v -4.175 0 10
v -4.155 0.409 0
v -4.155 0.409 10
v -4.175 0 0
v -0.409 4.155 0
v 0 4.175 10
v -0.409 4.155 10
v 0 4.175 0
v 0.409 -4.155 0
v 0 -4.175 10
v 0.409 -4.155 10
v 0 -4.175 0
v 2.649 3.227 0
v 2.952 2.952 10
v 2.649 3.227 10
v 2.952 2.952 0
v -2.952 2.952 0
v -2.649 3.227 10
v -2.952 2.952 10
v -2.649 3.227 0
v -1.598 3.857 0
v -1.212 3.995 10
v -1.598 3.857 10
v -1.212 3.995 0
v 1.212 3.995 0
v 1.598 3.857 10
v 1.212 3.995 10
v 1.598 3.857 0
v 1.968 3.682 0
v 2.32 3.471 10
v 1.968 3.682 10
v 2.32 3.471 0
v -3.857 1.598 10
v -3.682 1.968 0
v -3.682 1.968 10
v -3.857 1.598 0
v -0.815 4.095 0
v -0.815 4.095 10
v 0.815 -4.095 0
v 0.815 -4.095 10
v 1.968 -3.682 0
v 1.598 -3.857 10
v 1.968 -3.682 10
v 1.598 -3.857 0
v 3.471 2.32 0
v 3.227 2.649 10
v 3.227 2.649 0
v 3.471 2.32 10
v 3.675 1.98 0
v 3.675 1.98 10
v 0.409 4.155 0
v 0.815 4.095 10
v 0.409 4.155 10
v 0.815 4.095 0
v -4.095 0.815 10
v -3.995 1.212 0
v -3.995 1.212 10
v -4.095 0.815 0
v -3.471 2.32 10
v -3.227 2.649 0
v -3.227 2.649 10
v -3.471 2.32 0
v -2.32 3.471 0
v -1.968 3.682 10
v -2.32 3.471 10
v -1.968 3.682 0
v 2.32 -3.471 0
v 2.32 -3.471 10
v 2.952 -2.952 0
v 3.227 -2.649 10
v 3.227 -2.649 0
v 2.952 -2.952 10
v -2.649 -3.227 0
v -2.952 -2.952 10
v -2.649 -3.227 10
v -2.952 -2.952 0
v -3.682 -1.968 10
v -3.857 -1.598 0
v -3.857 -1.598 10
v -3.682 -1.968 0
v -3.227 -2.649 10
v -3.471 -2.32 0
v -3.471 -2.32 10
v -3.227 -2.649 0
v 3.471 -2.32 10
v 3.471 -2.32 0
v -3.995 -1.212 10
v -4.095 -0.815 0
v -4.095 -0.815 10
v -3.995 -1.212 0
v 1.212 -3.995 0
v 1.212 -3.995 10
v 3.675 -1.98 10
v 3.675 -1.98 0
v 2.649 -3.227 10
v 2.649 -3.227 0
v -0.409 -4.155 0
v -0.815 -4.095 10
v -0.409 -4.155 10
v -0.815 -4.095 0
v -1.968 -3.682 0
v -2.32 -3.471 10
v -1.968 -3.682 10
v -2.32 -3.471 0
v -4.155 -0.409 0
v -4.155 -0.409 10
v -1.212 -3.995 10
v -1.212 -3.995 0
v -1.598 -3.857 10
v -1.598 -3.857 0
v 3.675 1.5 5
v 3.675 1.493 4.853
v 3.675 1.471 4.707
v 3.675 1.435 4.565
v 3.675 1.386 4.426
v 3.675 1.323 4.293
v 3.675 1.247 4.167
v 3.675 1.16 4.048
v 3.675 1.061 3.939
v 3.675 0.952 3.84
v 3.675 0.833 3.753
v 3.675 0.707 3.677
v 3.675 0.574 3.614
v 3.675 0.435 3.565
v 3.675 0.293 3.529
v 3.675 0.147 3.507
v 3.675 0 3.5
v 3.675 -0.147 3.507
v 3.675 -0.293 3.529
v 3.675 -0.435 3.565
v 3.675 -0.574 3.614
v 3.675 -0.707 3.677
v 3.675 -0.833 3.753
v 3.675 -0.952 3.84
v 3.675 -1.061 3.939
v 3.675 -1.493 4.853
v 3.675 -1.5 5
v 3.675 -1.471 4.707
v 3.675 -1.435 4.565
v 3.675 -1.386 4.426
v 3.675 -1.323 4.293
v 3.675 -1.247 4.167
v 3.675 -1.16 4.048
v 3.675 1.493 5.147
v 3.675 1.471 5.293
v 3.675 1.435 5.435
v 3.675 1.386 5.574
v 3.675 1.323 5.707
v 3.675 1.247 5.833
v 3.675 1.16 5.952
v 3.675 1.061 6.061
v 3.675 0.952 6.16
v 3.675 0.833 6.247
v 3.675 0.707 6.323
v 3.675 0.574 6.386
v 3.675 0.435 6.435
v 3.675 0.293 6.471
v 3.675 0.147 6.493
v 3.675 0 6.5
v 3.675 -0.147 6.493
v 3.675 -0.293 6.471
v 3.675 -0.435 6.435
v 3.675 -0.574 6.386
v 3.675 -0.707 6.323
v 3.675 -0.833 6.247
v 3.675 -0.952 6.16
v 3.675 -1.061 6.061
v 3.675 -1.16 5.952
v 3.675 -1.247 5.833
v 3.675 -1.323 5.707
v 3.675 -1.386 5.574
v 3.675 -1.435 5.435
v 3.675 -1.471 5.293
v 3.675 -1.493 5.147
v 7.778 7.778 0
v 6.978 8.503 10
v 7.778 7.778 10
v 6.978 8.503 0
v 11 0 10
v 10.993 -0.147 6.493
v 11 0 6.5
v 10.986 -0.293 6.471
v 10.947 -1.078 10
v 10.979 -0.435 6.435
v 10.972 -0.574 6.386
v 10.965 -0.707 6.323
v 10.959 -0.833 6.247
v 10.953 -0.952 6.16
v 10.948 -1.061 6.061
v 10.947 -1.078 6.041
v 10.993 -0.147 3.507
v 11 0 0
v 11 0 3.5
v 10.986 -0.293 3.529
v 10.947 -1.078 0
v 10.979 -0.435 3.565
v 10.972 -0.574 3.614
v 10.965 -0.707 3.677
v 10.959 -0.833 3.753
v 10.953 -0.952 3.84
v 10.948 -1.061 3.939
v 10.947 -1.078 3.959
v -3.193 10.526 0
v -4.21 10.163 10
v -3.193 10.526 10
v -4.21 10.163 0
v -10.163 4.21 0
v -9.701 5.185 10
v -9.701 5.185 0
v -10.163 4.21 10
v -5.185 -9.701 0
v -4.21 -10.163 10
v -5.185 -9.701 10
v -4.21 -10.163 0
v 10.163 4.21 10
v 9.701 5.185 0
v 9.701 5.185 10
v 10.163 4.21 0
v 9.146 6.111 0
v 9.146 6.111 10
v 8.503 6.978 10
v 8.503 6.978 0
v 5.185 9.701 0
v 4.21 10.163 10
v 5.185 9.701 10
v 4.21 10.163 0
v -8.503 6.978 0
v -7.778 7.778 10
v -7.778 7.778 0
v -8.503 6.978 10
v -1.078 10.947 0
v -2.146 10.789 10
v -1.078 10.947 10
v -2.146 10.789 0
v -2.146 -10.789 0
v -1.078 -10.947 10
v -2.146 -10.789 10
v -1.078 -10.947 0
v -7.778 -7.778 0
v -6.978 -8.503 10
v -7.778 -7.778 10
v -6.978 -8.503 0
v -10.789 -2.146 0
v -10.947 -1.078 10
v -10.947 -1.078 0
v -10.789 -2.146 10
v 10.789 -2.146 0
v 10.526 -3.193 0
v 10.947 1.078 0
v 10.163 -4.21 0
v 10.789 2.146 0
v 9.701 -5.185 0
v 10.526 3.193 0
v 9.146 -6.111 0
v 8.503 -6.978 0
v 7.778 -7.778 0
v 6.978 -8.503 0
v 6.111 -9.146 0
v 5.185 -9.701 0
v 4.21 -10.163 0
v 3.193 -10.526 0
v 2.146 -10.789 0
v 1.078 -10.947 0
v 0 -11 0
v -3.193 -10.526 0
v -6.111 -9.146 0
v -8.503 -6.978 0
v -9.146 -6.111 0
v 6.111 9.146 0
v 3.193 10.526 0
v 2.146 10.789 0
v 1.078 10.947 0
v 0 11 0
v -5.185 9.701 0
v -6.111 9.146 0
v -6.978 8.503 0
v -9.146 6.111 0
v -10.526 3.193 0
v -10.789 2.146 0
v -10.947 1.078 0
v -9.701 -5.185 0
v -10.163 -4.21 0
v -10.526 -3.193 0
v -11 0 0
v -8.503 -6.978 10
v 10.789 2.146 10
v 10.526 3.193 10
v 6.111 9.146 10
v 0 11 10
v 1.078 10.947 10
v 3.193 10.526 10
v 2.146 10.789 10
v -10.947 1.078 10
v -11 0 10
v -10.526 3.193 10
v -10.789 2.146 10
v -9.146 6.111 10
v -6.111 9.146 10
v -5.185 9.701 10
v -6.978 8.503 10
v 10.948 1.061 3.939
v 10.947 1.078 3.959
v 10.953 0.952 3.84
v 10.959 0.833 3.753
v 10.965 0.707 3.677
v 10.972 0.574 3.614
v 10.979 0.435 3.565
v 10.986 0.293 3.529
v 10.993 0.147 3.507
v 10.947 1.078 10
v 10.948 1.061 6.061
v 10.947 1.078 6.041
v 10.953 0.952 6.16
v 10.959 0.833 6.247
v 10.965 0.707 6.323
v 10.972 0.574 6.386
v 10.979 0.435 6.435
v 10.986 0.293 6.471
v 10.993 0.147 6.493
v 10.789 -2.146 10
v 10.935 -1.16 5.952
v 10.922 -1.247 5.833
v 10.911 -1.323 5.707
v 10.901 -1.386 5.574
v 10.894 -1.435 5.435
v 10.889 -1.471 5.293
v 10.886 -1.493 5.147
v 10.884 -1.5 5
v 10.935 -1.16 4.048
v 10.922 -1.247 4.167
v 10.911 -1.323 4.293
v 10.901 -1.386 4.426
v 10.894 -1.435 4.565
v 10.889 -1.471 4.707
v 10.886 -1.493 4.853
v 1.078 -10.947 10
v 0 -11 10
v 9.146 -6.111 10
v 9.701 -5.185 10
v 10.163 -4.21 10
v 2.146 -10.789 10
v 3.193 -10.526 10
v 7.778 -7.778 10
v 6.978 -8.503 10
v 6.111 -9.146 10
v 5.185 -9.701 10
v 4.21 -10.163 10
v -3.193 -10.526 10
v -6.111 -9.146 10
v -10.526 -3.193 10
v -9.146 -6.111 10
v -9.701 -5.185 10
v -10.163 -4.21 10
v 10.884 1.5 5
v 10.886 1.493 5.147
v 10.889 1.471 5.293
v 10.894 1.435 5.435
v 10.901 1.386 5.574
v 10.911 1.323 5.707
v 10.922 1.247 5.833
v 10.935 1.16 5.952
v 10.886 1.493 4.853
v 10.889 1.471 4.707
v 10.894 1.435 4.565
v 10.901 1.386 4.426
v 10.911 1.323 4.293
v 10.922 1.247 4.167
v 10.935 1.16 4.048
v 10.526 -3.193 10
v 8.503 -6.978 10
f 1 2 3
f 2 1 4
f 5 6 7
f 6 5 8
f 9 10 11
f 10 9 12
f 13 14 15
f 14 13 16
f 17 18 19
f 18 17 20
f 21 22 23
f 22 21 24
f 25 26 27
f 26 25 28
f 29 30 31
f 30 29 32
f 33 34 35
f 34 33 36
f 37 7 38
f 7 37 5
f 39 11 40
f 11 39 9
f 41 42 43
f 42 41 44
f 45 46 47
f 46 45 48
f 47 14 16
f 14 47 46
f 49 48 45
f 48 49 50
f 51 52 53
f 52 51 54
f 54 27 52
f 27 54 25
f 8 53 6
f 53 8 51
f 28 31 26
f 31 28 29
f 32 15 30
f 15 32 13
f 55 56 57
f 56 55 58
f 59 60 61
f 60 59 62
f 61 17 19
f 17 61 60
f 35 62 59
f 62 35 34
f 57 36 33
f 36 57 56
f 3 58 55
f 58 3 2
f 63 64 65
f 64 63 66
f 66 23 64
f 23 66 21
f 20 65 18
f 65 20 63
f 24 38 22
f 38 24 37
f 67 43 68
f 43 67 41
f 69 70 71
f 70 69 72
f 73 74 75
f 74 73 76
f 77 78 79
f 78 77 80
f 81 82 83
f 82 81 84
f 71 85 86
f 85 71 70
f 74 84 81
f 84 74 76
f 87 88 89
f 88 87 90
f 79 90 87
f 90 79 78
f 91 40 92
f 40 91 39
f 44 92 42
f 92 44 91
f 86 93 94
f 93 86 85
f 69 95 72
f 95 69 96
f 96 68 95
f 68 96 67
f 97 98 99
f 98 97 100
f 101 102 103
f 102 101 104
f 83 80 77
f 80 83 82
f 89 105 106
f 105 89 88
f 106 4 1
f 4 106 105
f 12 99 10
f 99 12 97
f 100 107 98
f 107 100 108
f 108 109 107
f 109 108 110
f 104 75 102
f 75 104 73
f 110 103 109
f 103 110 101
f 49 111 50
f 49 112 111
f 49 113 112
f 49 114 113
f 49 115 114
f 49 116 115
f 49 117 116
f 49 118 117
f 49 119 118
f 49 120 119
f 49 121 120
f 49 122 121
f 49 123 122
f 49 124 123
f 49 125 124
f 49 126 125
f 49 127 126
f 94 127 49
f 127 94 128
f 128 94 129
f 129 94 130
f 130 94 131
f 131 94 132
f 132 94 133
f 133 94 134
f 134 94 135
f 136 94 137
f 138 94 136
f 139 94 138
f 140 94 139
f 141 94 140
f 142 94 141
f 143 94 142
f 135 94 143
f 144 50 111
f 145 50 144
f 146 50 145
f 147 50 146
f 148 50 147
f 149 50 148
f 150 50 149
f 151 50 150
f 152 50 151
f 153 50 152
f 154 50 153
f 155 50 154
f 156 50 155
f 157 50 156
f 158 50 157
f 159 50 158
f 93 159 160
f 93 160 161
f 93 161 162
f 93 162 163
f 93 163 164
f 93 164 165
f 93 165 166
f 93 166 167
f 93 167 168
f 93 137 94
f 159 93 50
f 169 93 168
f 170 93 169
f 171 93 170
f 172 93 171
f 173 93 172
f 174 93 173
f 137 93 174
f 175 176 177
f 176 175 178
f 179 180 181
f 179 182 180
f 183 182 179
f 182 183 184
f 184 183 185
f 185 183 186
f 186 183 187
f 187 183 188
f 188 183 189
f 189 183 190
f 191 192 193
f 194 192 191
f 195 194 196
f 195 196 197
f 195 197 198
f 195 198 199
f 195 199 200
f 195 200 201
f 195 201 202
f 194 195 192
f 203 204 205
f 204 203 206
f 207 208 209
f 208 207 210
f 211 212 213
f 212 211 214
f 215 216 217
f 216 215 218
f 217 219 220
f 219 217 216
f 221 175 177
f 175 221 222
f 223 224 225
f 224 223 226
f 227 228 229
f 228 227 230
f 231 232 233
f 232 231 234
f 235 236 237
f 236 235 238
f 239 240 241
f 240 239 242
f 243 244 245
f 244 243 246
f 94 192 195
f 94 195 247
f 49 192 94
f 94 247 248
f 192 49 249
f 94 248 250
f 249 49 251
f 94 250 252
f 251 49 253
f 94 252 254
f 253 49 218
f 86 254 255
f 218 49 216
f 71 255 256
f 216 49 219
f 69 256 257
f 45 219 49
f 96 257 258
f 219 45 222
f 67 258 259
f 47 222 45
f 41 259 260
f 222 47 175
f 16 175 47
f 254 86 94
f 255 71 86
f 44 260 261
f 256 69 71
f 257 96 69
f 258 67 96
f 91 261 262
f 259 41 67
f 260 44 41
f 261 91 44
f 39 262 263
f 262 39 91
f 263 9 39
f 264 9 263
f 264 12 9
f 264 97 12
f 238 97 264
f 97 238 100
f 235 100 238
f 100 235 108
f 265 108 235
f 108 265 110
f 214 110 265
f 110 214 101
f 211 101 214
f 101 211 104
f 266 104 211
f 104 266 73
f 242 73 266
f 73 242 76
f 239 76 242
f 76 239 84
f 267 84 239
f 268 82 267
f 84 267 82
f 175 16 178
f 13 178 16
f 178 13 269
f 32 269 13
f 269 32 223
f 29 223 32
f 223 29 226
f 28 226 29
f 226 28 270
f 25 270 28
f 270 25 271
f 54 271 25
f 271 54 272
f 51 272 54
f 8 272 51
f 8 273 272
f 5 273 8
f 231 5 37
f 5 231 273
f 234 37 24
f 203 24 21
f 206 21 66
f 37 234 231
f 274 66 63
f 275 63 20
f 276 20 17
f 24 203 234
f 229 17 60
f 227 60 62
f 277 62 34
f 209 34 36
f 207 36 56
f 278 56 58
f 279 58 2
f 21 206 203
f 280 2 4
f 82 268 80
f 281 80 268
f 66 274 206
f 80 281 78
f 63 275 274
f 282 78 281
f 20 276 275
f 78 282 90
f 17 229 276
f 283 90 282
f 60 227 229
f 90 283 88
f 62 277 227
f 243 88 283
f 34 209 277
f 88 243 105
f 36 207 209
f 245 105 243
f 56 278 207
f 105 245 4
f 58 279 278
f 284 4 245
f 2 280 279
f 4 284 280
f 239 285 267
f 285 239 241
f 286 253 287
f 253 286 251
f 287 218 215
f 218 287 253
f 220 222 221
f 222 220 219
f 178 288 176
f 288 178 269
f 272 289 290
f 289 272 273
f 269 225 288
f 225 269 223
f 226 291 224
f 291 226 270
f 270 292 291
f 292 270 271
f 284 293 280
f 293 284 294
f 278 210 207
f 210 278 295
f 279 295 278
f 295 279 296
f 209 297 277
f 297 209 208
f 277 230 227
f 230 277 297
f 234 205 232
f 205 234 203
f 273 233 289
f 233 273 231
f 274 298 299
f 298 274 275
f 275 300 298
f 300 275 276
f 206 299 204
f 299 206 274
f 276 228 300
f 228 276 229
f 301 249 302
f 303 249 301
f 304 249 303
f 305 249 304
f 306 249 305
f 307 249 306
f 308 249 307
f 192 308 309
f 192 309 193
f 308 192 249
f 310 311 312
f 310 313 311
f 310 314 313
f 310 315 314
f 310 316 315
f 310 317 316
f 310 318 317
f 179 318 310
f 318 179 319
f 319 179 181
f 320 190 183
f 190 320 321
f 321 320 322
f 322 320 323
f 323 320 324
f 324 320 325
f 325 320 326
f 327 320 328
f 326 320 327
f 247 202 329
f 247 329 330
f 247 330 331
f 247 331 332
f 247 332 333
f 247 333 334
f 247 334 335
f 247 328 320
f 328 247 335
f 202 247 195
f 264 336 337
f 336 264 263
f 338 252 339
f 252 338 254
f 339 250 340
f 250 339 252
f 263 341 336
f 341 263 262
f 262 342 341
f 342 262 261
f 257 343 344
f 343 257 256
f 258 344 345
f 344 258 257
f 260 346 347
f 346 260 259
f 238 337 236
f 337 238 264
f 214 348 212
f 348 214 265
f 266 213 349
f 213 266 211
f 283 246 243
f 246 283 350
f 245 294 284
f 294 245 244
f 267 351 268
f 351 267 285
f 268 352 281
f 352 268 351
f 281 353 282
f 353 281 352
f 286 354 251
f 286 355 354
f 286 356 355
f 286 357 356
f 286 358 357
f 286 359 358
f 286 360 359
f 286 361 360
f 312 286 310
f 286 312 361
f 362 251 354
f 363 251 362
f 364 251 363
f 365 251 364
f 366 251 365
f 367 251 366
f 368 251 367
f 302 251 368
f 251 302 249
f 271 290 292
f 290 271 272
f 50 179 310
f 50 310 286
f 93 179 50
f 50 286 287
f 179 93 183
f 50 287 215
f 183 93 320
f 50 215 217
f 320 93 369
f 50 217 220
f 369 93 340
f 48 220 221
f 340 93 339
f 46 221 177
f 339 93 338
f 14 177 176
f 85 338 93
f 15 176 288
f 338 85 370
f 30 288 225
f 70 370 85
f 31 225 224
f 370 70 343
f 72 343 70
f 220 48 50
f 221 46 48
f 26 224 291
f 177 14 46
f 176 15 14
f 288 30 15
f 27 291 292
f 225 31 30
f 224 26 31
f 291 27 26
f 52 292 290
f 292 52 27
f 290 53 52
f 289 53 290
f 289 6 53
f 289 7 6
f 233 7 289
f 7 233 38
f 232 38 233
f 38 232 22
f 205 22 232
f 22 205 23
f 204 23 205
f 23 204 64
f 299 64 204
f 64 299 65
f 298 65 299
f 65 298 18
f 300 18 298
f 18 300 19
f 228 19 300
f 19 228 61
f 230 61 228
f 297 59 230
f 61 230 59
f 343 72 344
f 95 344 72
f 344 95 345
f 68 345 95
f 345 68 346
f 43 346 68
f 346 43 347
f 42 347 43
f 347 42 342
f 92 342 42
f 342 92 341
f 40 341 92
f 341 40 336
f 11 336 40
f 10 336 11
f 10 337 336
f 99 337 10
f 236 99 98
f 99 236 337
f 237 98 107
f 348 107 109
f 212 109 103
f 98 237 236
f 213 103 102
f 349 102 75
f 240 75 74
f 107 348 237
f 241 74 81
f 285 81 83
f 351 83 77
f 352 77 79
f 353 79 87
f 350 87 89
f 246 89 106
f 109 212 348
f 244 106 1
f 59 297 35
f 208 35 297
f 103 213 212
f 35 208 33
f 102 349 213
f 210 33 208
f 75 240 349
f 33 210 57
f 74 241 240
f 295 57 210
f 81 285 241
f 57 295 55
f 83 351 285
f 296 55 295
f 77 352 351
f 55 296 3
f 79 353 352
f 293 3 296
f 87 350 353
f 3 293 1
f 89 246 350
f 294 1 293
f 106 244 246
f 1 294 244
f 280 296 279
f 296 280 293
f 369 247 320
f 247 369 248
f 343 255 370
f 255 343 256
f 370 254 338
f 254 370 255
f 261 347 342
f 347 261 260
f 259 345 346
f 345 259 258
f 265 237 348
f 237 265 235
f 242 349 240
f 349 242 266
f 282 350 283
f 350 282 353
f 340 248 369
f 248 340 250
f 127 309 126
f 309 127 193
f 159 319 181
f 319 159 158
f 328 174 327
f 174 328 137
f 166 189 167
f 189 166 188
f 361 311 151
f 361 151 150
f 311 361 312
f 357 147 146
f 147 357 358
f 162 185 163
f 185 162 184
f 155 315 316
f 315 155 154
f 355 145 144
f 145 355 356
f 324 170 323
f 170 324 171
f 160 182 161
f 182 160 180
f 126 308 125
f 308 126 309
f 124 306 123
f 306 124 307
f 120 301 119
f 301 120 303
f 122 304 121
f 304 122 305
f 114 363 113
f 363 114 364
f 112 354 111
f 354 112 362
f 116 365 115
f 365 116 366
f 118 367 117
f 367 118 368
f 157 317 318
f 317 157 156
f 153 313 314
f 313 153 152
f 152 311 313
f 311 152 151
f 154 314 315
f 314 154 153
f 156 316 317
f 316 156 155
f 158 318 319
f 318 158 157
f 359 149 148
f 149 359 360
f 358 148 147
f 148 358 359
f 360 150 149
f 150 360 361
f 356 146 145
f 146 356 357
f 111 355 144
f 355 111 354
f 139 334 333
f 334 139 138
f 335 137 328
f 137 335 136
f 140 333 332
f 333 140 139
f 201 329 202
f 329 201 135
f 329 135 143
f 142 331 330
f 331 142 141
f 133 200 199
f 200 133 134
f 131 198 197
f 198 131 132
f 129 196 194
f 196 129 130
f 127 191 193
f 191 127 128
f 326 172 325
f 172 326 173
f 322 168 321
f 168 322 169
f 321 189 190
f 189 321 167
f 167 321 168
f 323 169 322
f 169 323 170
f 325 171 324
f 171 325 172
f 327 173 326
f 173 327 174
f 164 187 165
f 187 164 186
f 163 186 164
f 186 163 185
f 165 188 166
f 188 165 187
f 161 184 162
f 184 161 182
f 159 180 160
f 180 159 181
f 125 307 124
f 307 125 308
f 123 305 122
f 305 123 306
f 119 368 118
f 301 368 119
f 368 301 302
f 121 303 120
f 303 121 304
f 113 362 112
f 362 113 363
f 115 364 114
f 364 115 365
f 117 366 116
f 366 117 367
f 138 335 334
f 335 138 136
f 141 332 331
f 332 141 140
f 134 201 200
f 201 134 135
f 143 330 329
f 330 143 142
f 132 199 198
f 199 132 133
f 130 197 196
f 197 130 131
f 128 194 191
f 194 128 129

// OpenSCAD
// file: parameters.scad
// =============================================================================
// Gen-BL — nightly 2026-10-06 (physics_scorer, honest magpylib watts)
// Dense-wind, smaller gap: the wire budget (not the window) limits these machines, so the same ~367 m of 26 AWG is laid layer-by-layer at fill 0.65 into a SHORTER 8.1 mm window (vs 9.0 mm on Gen-BI) with a 17.1 mm build on 29–71 mm sector bobbins. That shrinks the magnet-to-magnet gap 11.6 → 10.7 mm, so every turn sees more flux. Rotors, Ø5 tight-assist map and Ø134 × 4.76 mm steel are identical to Gen-BI (modular: only bobbins, stator and gap sleeve change).
// Clocking 0 deg (magnets N facing S) + D-flat keyed bore + index notch + flip-symmetric hole map.
// Windable 2-piece bobbin; turns = physics_scorer turns_fit; copper only between flanges.
// Steel back-iron: 2× Ø134 × 4.76 mm (3/16") mild-steel discs (steel_backiron_disc.dxf); magnets sit ON the steel
// (through-pockets) -> score with --back-iron.
// =============================================================================
topology            = "dual_rotor";

// --- Wire / winding (physics_scorer winding-fit) -------------------------------
wire_awg            = 26;
wire_od             = 0.45;     // insulated OD mm (bare 0.405)
fill_realistic      = 0.65;     // insulated-wire area / window (DENSE layered wind with a jig; scorer cap 0.65)
turns               = 566;       // = physics_scorer turns_fit (do NOT raise)
coil_former_type    = "bobbin";
coil_core_inset     = 17.10;     // radial copper build: hub = copper boundary inset by this
wind_build_axial    = 0.0;      // nothing proud of the flanges
wind_build_radial   = 0.0;

// --- Bobbin (base + lid) ---------------------------------------------------------
coil_id_r           = 29.00;    // copper boundary sector
coil_od_r           = 71.00;
span_deg            = 52.68;    // = pitch - 2*asin((wall+0.85)/coil_id_r) -> >=1.2 mm stator web
former_web          = 8.10;     // copper height between flanges (TALL copper: steel keeps Bz up)
flange_t            = 0.80;     // >= 0.8 mm FDM wall rule (tall winds push on the flanges)
wall                = 1.00;     // flange lip beyond copper
former_bare_h       = former_web + 2 * flange_t;
coil_envelope_h     = former_bare_h + 2 * wind_build_axial;
tab_w               = 7.0;
tab_len             = 7.0;
tab_h               = former_bare_h / 2;
pin_d               = 1.9;      // 1.75 mm filament locating pin
coil_mount_r        = coil_od_r + 0.2 + 4.0;
lead_y              = 1.6;
lead_slot_w         = 0.9;
lead_groove_d       = 0.6;

// --- Gap -------------------------------------------------------------------------
run_clear           = 0.50;     // rotor face -> flange
gap_spacer_h        = run_clear + wind_build_axial;
m2m                 = coil_envelope_h + 2 * run_clear;   // rotor face to rotor face (= gap_sleeve length)

// --- Stator ----------------------------------------------------------------------
coil_stations       = 6;
bay_clear           = 0.25;
stator_thick        = former_bare_h;                        // bobbins flush both faces
stator_od           = 160;
shaft_clear_stator  = 14.0;     // stator is static; gap sleeve OD 12 spins inside

// --- Rotor(s) --------------------------------------------------------------------
magnet_Br           = 1.43;     // N52
magnet_d_large      = 20.0;
magnet_h_large      = 5.0;      // one O20x5 per pocket
magnet_h_small      = 5.0;      // one O5x5 per pocket
halbach_magnetisation = "diametric"; // O5x5 assist magnets MUST be DIAMETRICALLY magnetised (tangential)
rotor_b_same_axis   = true;     // same-index magnets share one axis: N faces S across the gap
large_pocket_d      = 20.3;
small_pocket_d      = 5.3;
pocket_h            = 5.10;     // THROUGH the carrier: magnet back face sits on the steel disc
large_n             = 8;
R_large             = 50.0;
R_small_inner       = 40.0;
R_small_mid         = 50.0;
R_small_outer       = 60.0;
small_r_list        = [R_small_inner, R_small_mid, R_small_outer];   // O5 pockets between poles
carrier_od          = 134.0;
carrier_thick       = pocket_h;
hub_h               = 12.0;     // > steel_t + insert: radial set-screw clears the steel
hub_od              = 24.0;     // slim hub so the M4 brace rods fit at R~18 inside the coil ring
hub_insert_d        = 4.0;      // M3 heat-set insert, radial, bears on the D-flat
rotor_b_offset_deg  = 0.0;      // CLOCKING: magnets directly opposite
shaft_key           = "dflat";
dflat_depth         = 0.5;      // 8 mm shaft with 0.5 mm flat (7.5 across flat)
index_notch_d       = 3.0;

// --- Steel back-iron (buyable laser-cut) -------------------------------------------
steel_t             = 4.76;      // mild steel thickness (image method ignores it; sized from steel_flux.py so the return path stays well below saturation)
steel_center_hole   = 26.0;     // slips over the rotor hub (OD 24)
steel_od            = carrier_od;   // steel disc OD = rotor carrier OD

// --- Modular MAX interface ----------------------------------------------------------
shaft_bore          = 8.35;
dflat_x             = 4.0 - dflat_depth + (shaft_bore - 8.0) / 2;
bearing_d           = 21.85;
bearing_h           = 7.2;
m3_clear            = 3.5;
bolt_r_inner        = 30.0;     // M3 steel-disc clamp bolts (inside the magnet ring)
bolt_n_inner        = 4;
bolt_inner_angles   = [0, 90, 180, 270];
bolt_r_outer        = 63.0;     // M3 steel-disc clamp bolts (outside the magnet ring)
bolt_outer_angles   = [45, 135, 225, 315];
flange_bolt_r       = 73.0;     // frame rods: OUTSIDE the rotor OD (rotors spin inside them)
flange_bolt_n       = 6;
flange_bolt_offset  = 30.00;    // between coil stations -> never cuts a lead groove/tab
brace_r             = 18.0;
brace_d             = 4.3;      // temporary M4 jack rods (assembly only)
brace_n             = 4;
brace_angles        = [45, 135, 225, 315];          // flip-symmetric

spacer_pad_od       = 14.0;
spacer_pad_id       = m3_clear;
endbell_od          = 160;
endbell_thick       = 8.0;
endbell_shaft_clear = 10.0;
collar_h            = 10.0;
standoff_od         = 9.0;
frame_standoff_h    = run_clear + carrier_thick + hub_h + collar_h + 2.0;
sleeve_od           = 12.0;
plate_max_mm        = 410;

$fn = 64;
// main file
// Gen-BL — shaft collar with D-flat bore (set screw bears on the flat); print x4
include <parameters.scad>;
$fn = 64;
// D-flat keyed bore: flat faces +X (angle 0 = magnet pocket 0 = index notch)
module dflat_bore(h) {
    intersection() {
        cylinder(d=shaft_bore, h=h);
        translate([-shaft_bore, -shaft_bore, 0]) cube([shaft_bore + dflat_x, 2*shaft_bore, h]);
    }
}

od = 22; h = collar_h; set_d = 3.0;
difference() {
    cylinder(d=od, h=h);
    translate([0, 0, -0.1]) dflat_bore(h + 0.2);
    translate([0, 0, h/2]) rotate([0, 90, 0]) cylinder(d=set_d, h=od);
}
